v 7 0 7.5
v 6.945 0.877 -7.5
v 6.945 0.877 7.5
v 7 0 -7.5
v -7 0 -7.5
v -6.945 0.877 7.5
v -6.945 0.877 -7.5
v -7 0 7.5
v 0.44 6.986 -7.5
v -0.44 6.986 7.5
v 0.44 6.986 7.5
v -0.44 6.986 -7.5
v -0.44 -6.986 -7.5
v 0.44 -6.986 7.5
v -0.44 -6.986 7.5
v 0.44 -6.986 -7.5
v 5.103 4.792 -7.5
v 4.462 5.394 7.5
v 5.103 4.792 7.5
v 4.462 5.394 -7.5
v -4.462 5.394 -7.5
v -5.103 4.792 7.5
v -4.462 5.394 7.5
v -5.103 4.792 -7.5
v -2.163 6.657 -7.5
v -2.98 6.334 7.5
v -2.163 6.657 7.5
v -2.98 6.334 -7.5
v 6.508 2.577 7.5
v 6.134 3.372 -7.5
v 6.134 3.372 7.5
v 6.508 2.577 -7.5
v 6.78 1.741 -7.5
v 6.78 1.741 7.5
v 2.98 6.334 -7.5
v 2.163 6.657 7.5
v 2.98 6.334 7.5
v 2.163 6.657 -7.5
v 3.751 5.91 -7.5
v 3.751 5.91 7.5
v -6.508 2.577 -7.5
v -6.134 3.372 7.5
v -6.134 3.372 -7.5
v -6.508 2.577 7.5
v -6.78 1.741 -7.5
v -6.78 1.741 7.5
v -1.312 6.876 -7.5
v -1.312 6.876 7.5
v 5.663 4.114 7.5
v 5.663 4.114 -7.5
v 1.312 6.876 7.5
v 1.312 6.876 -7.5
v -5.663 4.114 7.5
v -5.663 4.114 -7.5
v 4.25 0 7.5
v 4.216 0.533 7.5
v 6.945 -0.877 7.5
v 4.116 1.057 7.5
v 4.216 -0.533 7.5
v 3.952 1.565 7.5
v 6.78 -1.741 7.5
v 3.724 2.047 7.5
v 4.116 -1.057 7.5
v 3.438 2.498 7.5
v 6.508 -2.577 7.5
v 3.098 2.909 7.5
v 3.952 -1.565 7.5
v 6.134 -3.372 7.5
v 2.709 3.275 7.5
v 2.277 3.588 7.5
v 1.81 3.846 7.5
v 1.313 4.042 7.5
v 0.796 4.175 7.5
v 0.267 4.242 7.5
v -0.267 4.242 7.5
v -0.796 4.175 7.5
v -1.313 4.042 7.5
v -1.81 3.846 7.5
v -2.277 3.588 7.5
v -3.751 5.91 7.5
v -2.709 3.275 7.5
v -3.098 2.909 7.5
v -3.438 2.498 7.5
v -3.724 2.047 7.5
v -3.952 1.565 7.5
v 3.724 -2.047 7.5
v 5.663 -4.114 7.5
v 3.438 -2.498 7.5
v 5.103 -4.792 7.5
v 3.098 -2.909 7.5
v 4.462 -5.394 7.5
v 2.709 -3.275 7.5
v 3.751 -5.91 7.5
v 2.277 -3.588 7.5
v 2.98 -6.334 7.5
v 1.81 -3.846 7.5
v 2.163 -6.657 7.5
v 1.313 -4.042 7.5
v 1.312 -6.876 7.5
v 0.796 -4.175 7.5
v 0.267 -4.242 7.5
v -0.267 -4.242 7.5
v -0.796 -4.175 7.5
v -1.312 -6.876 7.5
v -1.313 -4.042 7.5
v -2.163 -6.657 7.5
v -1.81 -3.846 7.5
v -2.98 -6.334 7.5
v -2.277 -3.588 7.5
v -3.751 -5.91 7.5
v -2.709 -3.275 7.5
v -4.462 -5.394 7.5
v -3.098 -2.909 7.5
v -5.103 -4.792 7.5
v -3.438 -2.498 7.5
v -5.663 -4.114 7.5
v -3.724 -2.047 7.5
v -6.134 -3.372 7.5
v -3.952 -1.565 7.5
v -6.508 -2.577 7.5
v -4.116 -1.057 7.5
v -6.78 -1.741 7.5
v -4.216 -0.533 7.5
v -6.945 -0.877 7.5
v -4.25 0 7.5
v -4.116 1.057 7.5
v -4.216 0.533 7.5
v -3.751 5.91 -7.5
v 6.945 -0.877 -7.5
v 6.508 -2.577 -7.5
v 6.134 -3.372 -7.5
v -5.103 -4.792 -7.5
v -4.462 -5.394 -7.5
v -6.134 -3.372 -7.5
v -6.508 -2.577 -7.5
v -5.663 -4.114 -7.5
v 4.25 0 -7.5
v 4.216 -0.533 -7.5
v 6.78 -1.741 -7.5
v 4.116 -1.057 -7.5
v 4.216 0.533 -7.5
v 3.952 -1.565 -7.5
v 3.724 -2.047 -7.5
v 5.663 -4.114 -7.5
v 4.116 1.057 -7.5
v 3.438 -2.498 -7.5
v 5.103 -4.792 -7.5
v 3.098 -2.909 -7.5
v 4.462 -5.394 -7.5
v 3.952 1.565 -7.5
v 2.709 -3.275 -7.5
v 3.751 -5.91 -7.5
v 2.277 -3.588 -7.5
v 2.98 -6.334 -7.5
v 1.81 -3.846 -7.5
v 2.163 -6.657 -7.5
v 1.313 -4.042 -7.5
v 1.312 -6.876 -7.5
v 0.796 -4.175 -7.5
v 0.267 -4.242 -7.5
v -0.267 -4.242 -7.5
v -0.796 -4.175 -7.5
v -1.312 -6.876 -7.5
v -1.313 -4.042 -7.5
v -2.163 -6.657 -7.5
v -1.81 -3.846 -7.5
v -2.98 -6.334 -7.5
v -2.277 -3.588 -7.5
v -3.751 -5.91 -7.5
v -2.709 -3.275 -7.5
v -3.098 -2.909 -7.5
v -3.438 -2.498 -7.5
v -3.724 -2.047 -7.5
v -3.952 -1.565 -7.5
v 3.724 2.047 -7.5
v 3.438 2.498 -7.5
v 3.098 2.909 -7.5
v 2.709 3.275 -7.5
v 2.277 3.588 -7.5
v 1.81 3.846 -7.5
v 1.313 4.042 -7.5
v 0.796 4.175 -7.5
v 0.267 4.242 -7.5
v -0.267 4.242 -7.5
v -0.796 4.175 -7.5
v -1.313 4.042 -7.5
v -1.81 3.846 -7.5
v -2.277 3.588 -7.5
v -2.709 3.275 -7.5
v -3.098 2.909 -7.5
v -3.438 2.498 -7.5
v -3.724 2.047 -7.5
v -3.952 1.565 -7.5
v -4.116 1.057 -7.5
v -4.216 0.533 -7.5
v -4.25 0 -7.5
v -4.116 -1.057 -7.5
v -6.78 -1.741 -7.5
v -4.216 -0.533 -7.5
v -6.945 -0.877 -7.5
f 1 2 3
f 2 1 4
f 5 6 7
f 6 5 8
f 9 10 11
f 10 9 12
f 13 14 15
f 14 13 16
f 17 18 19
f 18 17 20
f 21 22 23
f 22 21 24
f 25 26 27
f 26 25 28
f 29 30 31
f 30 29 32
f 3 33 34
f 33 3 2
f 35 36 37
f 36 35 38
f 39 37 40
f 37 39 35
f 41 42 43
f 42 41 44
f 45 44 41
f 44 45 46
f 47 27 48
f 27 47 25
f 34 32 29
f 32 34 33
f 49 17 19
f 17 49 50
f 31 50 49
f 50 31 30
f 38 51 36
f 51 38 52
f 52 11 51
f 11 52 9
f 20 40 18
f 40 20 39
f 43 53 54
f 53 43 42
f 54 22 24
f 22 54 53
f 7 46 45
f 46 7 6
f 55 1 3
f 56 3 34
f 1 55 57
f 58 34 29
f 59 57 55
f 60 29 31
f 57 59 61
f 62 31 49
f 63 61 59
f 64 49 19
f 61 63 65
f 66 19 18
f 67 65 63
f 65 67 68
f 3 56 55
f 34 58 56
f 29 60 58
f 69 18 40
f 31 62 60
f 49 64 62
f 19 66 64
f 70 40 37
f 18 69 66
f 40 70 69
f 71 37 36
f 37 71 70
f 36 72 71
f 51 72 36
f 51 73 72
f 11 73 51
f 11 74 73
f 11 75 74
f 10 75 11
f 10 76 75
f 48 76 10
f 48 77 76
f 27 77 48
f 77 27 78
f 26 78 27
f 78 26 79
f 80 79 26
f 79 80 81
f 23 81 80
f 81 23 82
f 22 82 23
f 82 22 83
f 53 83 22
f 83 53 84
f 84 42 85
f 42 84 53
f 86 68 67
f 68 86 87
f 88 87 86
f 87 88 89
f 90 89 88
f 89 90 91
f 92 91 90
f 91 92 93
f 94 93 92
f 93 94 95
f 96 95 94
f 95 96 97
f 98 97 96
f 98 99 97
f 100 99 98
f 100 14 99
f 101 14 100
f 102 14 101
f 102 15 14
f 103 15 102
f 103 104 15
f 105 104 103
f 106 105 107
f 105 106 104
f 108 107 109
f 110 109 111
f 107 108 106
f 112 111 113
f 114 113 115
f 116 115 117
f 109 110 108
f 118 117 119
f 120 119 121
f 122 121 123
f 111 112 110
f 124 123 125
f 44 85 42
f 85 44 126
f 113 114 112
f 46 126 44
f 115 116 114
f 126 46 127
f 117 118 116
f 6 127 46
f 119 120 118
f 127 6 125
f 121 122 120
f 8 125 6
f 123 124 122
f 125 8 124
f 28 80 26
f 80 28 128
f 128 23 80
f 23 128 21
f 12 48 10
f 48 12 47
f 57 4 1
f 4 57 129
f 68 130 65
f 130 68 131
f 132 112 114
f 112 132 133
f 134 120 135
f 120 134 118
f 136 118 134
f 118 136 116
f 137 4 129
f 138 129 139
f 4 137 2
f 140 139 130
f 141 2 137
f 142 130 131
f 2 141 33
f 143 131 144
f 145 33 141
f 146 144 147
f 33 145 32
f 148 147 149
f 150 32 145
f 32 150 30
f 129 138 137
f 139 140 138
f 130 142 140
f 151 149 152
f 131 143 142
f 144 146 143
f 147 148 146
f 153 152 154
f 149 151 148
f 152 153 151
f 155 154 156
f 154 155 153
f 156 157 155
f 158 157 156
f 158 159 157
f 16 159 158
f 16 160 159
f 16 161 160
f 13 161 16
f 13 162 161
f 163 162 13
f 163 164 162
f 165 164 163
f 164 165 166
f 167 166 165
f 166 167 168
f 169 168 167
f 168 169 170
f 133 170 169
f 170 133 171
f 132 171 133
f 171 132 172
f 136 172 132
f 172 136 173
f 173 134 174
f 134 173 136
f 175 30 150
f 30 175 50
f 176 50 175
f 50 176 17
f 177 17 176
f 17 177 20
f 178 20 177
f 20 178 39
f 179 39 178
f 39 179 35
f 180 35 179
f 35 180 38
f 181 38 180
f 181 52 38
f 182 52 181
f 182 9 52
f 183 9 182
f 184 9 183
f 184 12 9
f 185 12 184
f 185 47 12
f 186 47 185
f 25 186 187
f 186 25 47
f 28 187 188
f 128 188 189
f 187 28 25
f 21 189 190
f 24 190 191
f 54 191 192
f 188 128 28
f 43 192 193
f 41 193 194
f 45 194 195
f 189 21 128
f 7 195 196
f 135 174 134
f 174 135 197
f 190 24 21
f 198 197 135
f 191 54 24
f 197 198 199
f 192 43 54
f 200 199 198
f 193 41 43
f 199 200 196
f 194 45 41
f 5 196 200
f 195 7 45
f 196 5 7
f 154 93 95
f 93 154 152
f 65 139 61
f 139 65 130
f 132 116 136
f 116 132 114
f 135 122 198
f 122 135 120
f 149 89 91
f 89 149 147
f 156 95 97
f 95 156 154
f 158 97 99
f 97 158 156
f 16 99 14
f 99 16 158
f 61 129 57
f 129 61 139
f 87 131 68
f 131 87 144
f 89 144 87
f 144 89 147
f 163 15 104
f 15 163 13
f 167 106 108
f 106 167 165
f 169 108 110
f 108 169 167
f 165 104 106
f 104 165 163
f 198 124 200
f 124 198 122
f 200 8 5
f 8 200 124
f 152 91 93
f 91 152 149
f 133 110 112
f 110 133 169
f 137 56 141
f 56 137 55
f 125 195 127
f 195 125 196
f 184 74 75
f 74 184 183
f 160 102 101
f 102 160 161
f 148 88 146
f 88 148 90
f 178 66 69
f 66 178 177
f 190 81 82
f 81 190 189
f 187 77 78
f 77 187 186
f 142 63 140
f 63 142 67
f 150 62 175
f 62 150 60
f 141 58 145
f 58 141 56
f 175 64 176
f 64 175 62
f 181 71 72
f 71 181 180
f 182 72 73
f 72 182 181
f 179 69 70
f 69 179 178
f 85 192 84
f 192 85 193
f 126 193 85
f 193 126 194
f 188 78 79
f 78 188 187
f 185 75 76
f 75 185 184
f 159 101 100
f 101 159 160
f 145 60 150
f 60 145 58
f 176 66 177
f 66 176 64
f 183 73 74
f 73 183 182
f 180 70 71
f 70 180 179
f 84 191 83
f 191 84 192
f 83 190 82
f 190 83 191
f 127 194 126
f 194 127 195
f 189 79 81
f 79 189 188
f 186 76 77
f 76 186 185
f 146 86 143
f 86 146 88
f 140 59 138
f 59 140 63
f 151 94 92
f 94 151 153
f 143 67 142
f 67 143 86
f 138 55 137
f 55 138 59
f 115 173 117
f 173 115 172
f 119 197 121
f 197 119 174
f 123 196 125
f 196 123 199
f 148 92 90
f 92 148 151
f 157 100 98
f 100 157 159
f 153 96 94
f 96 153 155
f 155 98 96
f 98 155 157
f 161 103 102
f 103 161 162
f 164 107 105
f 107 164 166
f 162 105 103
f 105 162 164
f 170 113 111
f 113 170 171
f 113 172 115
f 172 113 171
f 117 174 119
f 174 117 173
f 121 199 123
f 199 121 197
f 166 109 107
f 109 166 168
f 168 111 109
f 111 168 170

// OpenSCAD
$fn = 50;


difference() {
	union() {
		translate(v = [0, 0, -7.5000000000]) {
			cylinder(h = 15, r = 7.0000000000);
		}
	}
	union() {
		translate(v = [0, 0, -100.0000000000]) {
			cylinder(h = 200, r = 4.2500000000);
		}
	}
}
